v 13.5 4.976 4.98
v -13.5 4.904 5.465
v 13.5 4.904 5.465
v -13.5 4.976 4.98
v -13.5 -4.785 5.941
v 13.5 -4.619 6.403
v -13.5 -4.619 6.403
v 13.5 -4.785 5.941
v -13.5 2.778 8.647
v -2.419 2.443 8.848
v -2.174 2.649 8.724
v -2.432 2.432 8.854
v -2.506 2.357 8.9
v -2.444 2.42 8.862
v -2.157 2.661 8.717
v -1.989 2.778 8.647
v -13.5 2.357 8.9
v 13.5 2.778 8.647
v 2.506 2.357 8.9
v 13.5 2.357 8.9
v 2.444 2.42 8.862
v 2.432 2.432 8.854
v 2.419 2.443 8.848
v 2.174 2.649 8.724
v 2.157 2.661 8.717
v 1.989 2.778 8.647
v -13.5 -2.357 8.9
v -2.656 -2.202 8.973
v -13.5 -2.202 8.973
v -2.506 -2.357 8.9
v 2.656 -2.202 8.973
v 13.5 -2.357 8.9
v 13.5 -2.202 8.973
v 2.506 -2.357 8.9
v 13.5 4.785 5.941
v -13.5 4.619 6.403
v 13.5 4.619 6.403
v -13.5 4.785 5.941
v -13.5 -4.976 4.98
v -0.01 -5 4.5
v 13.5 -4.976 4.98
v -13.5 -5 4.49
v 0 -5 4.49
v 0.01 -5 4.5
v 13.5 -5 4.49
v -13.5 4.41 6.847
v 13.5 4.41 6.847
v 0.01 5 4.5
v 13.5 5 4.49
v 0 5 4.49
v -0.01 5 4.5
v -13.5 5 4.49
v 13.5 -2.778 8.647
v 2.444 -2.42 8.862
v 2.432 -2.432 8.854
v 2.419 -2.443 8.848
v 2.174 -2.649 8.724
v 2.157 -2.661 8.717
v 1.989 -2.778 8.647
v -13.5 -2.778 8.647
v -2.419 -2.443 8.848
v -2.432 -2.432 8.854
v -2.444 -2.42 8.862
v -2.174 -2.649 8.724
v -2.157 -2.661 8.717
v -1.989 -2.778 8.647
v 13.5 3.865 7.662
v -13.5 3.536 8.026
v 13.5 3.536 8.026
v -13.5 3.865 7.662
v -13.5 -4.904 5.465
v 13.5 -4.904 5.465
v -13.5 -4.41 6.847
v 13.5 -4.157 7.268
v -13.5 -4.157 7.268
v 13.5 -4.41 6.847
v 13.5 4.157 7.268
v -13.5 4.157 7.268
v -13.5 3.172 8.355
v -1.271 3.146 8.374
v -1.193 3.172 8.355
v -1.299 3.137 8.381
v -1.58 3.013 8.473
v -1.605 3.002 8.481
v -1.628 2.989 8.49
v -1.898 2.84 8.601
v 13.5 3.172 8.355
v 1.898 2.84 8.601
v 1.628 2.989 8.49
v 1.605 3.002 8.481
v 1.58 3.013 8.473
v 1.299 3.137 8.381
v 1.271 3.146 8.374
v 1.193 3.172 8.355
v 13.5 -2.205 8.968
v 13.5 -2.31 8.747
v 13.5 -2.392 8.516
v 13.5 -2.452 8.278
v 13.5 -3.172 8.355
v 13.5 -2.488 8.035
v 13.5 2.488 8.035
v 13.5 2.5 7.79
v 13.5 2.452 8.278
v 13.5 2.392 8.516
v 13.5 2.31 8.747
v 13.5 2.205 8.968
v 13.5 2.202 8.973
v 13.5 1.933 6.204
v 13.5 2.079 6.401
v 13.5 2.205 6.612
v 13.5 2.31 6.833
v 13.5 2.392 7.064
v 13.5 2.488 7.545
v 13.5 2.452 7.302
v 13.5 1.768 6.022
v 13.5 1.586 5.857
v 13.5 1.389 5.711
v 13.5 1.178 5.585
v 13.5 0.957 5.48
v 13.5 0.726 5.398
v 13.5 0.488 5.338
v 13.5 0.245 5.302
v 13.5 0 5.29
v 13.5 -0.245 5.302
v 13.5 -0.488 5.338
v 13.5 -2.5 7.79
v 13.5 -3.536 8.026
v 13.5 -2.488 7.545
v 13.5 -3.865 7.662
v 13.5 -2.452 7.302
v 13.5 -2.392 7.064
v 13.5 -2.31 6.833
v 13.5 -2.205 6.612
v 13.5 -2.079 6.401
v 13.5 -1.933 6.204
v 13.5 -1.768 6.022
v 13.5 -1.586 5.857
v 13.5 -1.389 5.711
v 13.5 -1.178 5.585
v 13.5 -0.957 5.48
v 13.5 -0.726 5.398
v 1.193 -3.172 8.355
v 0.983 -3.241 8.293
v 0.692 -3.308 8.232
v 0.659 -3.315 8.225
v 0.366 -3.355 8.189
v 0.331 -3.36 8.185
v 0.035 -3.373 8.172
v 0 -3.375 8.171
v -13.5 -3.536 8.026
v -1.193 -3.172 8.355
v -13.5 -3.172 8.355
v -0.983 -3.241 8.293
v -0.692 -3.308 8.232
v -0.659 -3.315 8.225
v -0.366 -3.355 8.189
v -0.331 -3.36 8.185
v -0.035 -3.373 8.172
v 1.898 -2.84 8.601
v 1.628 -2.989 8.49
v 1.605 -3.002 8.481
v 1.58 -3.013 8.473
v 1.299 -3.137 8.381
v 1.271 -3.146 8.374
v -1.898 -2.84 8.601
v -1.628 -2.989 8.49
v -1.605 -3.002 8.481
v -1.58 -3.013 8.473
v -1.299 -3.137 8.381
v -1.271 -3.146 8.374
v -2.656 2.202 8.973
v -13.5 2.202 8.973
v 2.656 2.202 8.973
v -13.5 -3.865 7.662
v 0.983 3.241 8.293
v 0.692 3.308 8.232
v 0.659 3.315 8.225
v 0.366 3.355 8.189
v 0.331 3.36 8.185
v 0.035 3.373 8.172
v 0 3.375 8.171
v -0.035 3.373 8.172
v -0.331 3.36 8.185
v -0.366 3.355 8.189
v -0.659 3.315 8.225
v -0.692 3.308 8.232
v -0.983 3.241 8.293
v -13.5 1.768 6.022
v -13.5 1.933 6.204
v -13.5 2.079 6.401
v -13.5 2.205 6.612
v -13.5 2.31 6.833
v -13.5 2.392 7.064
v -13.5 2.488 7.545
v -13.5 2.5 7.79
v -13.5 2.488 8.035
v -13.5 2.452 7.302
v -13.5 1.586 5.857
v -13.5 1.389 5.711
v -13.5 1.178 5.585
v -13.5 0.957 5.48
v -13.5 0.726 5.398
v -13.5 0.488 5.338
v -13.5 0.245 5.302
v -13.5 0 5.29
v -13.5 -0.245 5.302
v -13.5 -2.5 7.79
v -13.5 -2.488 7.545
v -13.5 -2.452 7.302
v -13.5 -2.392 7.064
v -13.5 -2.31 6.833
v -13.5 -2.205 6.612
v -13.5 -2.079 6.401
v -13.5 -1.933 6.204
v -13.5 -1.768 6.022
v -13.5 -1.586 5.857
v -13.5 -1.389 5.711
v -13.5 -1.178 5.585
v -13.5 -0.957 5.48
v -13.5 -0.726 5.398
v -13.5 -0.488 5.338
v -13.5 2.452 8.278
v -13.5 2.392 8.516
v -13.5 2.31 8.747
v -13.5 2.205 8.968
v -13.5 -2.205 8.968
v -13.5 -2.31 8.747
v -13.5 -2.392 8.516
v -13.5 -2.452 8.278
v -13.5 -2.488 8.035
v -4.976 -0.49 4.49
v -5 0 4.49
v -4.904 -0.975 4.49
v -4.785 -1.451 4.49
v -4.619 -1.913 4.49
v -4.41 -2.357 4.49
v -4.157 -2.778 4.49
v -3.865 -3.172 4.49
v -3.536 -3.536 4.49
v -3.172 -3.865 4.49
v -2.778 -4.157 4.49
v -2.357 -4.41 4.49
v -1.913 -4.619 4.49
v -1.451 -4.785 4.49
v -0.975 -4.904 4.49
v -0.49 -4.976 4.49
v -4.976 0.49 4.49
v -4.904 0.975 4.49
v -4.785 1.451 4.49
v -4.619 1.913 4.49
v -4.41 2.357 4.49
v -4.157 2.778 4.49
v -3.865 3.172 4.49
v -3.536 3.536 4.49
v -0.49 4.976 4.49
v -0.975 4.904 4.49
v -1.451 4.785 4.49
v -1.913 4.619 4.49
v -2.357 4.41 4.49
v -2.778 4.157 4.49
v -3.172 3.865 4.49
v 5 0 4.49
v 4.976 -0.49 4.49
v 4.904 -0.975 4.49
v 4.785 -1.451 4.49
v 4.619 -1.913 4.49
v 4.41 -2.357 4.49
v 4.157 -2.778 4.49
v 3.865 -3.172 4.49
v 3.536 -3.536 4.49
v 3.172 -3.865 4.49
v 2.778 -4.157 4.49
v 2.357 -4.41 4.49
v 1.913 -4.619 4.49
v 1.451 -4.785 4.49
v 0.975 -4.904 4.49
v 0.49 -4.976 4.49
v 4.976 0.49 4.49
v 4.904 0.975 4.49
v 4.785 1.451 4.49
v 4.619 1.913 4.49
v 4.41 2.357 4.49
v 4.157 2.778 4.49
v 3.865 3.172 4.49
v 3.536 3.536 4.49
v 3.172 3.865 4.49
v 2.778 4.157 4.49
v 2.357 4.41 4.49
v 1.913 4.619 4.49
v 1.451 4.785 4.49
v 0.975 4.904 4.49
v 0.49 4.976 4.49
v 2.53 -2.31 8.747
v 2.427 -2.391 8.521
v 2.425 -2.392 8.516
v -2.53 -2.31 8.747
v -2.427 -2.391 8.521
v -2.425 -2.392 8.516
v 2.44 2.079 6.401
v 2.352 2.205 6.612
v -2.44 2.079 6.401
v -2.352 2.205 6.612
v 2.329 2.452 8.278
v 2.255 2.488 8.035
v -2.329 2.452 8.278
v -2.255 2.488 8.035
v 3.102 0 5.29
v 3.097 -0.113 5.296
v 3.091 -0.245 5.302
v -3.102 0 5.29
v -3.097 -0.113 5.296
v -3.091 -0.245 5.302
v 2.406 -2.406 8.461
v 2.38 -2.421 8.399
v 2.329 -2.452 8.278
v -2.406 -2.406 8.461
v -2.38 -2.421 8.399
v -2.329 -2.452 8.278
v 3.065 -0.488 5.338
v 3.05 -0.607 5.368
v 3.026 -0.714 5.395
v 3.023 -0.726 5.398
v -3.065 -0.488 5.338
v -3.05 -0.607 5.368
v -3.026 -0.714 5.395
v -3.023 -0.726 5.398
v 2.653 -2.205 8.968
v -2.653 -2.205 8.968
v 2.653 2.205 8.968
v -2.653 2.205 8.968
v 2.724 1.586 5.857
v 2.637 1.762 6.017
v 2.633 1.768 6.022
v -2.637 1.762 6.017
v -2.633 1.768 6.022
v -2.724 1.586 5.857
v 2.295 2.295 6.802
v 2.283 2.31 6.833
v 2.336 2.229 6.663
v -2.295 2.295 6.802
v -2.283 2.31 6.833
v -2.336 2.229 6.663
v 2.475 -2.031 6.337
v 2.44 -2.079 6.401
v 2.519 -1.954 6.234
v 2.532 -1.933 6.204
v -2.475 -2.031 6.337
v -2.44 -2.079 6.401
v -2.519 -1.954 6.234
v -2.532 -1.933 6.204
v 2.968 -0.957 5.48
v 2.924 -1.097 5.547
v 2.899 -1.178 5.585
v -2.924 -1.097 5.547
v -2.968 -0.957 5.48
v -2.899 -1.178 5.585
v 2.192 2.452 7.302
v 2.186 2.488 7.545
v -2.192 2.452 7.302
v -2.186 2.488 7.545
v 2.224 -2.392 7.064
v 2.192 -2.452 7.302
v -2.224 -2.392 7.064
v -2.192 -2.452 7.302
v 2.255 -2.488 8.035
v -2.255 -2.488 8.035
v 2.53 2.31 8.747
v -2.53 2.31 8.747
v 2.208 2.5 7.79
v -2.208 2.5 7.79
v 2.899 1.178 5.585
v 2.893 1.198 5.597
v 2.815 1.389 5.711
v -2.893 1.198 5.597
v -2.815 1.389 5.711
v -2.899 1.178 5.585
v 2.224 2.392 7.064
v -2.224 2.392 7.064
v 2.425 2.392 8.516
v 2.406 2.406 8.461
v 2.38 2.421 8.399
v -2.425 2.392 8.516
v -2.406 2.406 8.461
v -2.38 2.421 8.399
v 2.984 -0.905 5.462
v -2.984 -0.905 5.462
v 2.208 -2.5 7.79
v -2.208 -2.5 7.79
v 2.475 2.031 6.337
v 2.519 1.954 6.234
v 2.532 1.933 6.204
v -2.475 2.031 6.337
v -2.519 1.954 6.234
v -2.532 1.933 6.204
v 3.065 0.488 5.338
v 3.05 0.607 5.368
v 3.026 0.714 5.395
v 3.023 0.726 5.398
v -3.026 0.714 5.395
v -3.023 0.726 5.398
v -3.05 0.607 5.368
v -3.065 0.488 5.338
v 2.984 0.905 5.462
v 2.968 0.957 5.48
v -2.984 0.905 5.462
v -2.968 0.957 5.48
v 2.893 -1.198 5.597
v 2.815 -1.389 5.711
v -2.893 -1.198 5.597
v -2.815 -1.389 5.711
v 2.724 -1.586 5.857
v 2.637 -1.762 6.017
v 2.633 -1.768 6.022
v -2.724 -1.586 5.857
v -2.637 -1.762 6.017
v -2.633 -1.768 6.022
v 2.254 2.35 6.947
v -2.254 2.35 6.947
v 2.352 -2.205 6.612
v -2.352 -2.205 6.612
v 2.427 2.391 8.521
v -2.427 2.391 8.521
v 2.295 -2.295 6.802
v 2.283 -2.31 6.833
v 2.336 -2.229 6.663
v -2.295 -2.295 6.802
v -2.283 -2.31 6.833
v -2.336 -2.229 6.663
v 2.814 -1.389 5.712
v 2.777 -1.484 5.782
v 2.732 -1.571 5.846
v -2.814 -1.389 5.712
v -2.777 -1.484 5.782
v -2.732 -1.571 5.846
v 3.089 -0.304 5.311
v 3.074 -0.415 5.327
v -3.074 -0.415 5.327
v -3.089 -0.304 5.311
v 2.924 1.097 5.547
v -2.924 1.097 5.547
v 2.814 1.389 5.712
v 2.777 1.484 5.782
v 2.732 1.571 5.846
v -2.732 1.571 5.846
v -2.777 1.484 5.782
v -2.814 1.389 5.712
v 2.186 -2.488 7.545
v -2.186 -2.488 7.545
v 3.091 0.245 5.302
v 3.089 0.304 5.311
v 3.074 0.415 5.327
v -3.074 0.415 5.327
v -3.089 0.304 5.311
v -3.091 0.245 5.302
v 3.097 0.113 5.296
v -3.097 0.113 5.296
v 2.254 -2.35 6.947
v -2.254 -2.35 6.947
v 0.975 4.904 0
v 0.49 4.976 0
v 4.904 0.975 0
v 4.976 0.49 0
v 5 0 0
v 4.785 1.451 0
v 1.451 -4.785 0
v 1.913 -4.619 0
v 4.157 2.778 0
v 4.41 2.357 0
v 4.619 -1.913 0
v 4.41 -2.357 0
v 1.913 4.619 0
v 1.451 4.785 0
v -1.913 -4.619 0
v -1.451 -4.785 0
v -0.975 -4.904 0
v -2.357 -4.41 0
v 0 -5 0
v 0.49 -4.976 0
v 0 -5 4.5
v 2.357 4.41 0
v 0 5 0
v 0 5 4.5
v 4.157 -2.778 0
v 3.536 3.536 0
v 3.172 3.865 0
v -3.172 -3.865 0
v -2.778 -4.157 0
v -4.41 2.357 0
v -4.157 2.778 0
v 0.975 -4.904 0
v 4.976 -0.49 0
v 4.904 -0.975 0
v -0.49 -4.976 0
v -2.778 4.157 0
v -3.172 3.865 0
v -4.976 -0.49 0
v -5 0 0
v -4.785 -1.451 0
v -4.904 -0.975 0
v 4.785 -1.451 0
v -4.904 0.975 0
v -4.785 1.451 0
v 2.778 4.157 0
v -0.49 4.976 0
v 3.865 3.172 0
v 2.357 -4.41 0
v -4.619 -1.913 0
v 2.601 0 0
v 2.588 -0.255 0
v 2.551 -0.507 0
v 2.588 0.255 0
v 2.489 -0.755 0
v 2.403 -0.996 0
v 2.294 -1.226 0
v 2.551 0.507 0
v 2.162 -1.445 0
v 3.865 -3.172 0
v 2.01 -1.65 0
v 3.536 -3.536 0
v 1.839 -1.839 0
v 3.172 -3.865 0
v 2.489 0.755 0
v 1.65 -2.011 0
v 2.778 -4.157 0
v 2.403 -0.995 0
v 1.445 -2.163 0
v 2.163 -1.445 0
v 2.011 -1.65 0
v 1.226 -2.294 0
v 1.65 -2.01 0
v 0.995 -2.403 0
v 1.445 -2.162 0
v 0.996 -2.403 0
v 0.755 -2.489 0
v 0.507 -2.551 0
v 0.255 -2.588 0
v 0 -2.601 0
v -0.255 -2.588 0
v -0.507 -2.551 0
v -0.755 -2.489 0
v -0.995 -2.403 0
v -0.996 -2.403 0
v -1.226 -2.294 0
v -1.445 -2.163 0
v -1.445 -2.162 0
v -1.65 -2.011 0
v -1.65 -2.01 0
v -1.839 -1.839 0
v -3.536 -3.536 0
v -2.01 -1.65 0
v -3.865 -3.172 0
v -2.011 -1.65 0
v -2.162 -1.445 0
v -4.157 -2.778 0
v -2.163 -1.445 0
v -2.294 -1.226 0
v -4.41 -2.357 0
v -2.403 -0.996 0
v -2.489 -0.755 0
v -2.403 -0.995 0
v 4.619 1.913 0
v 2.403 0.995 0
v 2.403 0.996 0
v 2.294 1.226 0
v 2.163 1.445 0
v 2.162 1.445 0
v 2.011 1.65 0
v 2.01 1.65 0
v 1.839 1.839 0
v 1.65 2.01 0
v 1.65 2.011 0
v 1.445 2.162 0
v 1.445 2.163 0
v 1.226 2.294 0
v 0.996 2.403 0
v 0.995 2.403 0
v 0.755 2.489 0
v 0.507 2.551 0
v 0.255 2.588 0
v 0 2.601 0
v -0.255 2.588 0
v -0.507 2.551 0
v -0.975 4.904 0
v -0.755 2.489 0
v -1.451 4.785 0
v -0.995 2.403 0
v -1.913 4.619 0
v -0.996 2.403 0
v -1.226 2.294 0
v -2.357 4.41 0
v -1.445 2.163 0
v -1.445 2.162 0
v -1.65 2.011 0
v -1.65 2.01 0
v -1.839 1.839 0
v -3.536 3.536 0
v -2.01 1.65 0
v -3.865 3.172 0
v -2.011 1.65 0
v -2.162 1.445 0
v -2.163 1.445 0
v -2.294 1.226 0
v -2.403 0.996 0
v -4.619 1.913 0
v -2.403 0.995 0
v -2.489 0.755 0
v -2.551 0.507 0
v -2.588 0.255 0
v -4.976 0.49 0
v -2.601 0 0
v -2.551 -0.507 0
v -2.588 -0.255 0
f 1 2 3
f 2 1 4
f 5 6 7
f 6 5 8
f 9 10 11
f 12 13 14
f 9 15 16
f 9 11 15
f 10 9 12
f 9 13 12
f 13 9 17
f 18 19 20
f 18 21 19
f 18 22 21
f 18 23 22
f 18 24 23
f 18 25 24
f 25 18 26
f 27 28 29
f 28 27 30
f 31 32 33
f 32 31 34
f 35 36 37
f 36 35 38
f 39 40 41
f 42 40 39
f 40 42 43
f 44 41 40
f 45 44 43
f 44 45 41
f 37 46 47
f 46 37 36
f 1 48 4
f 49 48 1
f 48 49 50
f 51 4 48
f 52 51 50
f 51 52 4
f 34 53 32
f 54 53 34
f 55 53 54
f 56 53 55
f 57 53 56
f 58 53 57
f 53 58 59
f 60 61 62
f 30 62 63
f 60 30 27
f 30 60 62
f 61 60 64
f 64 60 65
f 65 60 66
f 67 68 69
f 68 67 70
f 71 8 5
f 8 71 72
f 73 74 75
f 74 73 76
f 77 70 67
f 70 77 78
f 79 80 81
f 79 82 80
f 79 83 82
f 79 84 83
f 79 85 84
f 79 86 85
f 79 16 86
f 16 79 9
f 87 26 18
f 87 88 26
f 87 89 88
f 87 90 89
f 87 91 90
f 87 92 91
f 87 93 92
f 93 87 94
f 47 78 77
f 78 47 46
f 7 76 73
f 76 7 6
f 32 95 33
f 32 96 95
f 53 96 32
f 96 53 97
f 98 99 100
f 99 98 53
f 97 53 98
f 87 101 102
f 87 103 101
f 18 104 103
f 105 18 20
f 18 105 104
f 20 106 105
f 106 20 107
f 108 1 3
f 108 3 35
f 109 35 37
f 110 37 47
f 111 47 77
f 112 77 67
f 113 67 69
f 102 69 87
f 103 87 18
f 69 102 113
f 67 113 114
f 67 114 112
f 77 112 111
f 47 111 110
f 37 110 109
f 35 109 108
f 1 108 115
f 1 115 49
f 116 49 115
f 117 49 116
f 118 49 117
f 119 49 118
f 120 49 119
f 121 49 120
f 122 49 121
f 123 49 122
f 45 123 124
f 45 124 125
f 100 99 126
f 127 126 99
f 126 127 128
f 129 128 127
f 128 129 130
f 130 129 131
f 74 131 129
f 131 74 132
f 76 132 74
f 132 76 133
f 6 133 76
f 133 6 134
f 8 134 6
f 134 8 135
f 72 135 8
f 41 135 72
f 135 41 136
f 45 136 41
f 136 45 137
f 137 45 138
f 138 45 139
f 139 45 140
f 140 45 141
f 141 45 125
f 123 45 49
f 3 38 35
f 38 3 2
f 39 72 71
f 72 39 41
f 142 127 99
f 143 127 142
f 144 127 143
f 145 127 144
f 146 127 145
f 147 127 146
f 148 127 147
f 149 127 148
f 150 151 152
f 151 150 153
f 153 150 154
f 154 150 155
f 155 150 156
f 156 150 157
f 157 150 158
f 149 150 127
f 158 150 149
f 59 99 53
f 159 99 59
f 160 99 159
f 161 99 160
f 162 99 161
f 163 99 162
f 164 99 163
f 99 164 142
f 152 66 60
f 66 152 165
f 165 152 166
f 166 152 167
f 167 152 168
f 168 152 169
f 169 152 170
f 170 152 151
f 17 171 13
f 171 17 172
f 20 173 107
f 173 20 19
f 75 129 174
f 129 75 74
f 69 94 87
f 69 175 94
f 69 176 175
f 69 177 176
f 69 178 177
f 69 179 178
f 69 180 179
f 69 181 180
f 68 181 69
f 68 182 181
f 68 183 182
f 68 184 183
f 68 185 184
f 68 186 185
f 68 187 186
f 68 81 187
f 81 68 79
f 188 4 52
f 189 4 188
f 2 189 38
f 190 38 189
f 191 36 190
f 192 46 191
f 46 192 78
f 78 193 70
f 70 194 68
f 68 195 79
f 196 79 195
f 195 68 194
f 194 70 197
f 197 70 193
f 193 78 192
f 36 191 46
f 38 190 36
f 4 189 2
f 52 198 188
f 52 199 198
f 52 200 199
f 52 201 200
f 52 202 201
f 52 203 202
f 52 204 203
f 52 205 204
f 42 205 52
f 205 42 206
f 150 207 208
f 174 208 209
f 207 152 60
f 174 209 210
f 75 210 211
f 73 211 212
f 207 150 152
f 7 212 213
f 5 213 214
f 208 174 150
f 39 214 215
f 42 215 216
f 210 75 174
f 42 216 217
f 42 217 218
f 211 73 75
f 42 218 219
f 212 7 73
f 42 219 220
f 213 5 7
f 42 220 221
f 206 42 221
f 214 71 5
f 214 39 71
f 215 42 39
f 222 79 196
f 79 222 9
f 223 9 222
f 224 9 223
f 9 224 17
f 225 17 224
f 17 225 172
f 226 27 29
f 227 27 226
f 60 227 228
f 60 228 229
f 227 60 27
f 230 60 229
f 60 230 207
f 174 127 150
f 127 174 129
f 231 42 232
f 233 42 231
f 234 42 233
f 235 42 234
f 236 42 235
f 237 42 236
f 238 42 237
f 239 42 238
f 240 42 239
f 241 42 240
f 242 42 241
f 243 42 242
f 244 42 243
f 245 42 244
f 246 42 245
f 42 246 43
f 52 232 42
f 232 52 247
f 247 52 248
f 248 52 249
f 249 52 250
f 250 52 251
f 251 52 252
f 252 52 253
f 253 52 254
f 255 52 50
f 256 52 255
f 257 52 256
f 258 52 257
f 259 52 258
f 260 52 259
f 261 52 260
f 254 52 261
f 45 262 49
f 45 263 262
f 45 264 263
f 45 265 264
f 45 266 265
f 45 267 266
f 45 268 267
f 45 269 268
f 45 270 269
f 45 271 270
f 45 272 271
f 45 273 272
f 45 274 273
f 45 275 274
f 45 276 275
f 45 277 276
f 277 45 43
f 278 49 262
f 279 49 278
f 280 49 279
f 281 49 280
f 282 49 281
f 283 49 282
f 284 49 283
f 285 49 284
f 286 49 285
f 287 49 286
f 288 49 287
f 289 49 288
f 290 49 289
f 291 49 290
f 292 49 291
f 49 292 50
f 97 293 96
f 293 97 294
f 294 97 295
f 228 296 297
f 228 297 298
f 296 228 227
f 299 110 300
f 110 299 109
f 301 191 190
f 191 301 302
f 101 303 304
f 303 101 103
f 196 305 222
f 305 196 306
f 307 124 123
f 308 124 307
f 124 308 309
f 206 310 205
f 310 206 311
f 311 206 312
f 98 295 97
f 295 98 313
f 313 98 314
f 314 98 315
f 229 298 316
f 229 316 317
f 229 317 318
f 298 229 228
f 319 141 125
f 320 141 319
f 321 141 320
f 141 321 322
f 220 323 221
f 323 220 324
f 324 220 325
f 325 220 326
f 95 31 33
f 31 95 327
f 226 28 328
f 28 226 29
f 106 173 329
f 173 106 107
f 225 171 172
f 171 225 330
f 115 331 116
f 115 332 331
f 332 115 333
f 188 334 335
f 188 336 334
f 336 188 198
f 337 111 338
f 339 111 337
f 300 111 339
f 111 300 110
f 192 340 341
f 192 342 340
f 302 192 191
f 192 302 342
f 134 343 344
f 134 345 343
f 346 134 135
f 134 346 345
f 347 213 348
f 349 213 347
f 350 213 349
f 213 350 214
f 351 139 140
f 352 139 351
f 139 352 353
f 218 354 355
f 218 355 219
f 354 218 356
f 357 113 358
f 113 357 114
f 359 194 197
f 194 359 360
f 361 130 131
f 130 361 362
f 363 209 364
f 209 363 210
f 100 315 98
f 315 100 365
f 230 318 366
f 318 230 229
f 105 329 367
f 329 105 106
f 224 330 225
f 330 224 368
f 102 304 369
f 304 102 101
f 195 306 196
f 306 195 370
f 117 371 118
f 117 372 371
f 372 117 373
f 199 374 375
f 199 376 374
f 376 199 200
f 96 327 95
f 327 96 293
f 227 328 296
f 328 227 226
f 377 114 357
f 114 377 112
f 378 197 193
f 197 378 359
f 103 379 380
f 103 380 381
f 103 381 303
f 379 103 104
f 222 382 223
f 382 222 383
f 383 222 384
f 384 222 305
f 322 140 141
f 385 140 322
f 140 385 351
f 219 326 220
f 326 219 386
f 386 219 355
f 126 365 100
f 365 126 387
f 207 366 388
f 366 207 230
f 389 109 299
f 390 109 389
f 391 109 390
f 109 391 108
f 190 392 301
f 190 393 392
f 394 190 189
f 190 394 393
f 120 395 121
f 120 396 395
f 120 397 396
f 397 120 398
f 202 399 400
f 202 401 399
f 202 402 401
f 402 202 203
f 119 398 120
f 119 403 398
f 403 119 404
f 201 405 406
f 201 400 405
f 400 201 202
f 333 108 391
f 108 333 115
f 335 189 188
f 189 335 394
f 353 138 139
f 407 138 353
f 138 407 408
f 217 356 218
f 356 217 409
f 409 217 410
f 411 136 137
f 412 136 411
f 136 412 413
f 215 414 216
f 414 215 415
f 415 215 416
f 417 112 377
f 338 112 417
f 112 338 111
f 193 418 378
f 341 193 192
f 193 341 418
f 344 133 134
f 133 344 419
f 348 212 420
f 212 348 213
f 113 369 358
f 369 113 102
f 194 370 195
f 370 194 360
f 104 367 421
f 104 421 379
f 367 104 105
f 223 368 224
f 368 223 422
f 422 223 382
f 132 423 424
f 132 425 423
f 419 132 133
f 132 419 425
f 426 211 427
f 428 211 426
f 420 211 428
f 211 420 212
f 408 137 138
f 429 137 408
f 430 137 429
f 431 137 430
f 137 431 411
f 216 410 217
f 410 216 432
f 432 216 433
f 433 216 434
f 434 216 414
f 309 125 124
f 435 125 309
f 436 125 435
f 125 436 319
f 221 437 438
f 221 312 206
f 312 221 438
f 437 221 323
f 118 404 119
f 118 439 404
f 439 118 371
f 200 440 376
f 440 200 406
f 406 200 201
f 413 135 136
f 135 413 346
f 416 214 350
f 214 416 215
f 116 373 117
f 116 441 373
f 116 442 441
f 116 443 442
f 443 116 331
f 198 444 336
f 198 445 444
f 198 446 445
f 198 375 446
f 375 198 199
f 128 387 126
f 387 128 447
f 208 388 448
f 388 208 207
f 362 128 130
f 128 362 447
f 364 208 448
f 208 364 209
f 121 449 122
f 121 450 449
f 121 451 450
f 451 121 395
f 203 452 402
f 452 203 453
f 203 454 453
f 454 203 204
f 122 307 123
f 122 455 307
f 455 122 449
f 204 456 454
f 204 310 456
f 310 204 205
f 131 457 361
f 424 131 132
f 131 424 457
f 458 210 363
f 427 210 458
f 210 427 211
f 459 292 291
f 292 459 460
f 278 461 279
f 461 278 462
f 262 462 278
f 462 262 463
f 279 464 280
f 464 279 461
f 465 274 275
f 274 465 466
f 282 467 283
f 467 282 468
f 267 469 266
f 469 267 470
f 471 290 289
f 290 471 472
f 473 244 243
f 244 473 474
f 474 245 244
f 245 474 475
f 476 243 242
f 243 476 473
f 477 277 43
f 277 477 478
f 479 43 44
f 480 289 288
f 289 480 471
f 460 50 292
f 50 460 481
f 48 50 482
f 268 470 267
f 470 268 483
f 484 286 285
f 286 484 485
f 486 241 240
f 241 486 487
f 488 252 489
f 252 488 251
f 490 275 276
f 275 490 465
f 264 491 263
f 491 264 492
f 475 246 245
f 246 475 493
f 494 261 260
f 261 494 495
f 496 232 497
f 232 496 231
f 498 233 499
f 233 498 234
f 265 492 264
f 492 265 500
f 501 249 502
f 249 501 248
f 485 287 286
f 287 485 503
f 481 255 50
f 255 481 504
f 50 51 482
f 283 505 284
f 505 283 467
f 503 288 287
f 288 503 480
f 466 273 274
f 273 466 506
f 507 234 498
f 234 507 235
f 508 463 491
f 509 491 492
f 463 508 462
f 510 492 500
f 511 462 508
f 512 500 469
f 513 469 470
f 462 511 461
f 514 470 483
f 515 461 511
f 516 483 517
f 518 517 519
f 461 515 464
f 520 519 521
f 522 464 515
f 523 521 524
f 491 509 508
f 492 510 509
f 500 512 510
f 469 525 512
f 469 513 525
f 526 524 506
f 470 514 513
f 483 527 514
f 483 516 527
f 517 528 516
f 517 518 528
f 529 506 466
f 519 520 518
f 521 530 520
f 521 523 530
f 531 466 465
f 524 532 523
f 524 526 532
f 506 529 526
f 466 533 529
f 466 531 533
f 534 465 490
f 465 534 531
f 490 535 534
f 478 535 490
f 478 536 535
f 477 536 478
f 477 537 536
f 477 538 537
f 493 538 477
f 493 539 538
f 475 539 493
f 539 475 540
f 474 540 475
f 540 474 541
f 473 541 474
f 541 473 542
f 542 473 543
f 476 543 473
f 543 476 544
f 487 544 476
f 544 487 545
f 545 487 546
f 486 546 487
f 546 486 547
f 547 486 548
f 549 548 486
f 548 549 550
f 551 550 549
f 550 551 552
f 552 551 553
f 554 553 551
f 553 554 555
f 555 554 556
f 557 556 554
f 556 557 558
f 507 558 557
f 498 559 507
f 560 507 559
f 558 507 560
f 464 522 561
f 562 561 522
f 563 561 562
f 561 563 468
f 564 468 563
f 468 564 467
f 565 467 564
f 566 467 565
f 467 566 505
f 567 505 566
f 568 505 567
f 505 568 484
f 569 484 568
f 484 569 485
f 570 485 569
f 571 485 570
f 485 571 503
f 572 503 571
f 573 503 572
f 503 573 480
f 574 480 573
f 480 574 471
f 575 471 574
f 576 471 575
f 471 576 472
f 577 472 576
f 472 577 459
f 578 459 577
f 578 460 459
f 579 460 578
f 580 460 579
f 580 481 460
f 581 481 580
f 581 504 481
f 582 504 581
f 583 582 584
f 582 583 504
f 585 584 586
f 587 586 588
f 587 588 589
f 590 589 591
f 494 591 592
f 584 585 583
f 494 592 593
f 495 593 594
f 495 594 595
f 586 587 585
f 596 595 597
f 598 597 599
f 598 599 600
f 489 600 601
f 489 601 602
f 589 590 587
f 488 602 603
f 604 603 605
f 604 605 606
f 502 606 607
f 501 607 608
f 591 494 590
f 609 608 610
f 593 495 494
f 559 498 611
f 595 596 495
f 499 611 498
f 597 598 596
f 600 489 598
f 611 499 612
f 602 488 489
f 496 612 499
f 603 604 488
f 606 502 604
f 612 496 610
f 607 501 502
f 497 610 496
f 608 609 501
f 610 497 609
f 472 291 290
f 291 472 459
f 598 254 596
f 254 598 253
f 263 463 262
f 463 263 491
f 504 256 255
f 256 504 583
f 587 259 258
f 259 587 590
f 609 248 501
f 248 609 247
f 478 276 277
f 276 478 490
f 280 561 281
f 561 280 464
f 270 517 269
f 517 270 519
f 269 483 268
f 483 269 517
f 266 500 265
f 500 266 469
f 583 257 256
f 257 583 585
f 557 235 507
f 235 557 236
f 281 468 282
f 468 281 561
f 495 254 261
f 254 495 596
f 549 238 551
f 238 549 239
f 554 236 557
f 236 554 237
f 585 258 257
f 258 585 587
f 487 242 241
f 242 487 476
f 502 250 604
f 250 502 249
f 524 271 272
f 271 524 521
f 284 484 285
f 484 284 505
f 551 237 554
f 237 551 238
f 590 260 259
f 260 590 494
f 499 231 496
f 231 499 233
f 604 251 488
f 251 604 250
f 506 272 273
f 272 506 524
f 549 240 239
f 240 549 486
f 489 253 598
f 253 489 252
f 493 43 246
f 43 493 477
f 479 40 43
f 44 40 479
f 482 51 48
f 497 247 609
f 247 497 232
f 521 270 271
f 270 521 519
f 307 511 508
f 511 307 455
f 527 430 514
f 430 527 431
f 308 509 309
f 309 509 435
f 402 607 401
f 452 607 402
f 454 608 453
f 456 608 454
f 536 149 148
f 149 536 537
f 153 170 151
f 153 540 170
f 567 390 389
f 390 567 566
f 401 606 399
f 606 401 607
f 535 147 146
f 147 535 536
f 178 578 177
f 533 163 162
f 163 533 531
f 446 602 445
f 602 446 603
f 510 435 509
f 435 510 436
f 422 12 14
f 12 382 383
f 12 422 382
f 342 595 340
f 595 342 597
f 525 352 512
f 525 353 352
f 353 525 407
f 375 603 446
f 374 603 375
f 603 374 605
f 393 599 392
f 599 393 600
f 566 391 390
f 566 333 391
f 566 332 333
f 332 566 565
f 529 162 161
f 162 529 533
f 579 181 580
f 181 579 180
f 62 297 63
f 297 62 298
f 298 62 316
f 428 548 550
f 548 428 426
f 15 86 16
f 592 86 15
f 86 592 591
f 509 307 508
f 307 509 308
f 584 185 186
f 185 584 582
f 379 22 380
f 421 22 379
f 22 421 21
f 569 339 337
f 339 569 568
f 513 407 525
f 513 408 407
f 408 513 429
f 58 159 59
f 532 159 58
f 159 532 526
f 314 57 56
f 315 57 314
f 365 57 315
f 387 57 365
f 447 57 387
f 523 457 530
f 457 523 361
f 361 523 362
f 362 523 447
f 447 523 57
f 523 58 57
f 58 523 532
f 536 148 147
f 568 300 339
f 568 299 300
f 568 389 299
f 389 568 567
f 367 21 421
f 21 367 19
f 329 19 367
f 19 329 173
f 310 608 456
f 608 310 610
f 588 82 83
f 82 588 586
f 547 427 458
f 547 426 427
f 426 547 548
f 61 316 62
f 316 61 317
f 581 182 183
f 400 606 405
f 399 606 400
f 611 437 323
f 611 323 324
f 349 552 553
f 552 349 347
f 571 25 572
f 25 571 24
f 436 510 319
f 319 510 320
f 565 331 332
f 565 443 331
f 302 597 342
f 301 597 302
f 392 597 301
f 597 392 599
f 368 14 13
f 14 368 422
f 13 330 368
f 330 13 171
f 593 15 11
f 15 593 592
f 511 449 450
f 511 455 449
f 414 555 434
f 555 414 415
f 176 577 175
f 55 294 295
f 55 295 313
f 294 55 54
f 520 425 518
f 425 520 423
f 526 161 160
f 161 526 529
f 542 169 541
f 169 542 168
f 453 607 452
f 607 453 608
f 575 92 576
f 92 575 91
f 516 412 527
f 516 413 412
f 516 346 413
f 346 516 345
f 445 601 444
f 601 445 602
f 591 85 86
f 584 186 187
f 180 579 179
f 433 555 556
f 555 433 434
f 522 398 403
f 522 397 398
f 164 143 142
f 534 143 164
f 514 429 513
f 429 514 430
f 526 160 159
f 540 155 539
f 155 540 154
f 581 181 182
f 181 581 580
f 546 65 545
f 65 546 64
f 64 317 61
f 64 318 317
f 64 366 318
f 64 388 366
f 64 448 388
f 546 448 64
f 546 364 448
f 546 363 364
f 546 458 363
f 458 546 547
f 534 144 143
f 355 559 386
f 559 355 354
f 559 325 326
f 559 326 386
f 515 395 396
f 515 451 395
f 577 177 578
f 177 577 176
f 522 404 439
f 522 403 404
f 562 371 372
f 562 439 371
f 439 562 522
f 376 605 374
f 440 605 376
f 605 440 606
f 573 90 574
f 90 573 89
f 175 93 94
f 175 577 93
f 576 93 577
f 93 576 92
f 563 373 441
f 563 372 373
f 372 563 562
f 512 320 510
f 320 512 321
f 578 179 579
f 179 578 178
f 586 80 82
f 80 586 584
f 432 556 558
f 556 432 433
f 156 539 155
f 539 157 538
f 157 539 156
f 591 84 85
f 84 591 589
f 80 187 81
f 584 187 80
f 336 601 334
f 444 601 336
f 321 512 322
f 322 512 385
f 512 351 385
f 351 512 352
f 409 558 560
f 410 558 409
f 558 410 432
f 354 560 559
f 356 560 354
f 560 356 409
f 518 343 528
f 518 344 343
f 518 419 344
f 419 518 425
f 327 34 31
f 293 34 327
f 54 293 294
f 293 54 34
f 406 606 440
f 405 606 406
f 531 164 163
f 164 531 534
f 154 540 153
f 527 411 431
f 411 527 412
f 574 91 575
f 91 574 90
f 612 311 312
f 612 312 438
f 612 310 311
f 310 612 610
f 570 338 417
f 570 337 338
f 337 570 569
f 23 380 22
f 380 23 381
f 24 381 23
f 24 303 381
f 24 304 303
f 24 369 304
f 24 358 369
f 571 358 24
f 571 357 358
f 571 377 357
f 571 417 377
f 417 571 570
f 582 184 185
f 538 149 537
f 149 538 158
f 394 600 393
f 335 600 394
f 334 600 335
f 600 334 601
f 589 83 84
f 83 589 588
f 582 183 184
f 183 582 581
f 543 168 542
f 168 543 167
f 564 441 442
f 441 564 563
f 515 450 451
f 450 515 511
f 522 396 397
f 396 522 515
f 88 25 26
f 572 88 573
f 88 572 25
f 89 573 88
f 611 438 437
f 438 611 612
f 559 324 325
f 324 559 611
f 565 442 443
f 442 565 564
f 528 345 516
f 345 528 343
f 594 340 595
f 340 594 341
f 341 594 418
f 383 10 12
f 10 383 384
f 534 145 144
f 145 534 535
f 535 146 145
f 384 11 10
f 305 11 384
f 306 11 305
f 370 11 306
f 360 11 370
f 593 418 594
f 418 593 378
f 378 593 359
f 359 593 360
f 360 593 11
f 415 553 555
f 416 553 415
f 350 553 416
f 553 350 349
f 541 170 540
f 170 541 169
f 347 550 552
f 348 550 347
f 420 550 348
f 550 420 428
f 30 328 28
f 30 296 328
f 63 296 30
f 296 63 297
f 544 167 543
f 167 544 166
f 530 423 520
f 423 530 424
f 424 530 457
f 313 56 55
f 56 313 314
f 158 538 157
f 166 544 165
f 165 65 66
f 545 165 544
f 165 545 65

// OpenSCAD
// This file produces an antenna mount that fits in the mounting holes on the tail of the
// AtomRC Killer Whale RC plane. It is designed for an HappyModel ELS900-RX antenna, but
// may fit other similar dipole antennas.

$fn = 64;

// Radius of the hole in the plywood mount.
inner_radius = 6.5 / 2;

// Radius of the hole in the foam.
outer_radius = 5;

// Depth of the hole in the foam.
hole_depth = 4.5;

// Small amount to avoid z-fighting.
epsilon = 0.01;

// The length to make the portion of the mount the antenna fits on.
mount_length = 27;

antenna_radius = 2.5;


module clip() {
    difference() {
        cylinder(h = mount_length, r = outer_radius, center = true);

        translate([-outer_radius, 0, 0])
        cube([outer_radius * 2, outer_radius * 2, mount_length + (epsilon * 2)], center = true);
        
        translate([outer_radius / 2 + 0.8, 0, 0])
        cylinder(h = mount_length + (epsilon * 2), r = antenna_radius, center = true);
    }
}

module mount() {
    difference() {
        union() {
            cylinder(h = hole_depth, r = outer_radius);
            translate([0, 0, hole_depth - epsilon])
            rotate([0, -90, 0])
            clip();
        }
        
        translate([0, 0, -epsilon])
        cylinder(h = hole_depth + outer_radius, r1 = antenna_radius + 0.1, r2 = antenna_radius + 1.0);
    }
}

mount();
